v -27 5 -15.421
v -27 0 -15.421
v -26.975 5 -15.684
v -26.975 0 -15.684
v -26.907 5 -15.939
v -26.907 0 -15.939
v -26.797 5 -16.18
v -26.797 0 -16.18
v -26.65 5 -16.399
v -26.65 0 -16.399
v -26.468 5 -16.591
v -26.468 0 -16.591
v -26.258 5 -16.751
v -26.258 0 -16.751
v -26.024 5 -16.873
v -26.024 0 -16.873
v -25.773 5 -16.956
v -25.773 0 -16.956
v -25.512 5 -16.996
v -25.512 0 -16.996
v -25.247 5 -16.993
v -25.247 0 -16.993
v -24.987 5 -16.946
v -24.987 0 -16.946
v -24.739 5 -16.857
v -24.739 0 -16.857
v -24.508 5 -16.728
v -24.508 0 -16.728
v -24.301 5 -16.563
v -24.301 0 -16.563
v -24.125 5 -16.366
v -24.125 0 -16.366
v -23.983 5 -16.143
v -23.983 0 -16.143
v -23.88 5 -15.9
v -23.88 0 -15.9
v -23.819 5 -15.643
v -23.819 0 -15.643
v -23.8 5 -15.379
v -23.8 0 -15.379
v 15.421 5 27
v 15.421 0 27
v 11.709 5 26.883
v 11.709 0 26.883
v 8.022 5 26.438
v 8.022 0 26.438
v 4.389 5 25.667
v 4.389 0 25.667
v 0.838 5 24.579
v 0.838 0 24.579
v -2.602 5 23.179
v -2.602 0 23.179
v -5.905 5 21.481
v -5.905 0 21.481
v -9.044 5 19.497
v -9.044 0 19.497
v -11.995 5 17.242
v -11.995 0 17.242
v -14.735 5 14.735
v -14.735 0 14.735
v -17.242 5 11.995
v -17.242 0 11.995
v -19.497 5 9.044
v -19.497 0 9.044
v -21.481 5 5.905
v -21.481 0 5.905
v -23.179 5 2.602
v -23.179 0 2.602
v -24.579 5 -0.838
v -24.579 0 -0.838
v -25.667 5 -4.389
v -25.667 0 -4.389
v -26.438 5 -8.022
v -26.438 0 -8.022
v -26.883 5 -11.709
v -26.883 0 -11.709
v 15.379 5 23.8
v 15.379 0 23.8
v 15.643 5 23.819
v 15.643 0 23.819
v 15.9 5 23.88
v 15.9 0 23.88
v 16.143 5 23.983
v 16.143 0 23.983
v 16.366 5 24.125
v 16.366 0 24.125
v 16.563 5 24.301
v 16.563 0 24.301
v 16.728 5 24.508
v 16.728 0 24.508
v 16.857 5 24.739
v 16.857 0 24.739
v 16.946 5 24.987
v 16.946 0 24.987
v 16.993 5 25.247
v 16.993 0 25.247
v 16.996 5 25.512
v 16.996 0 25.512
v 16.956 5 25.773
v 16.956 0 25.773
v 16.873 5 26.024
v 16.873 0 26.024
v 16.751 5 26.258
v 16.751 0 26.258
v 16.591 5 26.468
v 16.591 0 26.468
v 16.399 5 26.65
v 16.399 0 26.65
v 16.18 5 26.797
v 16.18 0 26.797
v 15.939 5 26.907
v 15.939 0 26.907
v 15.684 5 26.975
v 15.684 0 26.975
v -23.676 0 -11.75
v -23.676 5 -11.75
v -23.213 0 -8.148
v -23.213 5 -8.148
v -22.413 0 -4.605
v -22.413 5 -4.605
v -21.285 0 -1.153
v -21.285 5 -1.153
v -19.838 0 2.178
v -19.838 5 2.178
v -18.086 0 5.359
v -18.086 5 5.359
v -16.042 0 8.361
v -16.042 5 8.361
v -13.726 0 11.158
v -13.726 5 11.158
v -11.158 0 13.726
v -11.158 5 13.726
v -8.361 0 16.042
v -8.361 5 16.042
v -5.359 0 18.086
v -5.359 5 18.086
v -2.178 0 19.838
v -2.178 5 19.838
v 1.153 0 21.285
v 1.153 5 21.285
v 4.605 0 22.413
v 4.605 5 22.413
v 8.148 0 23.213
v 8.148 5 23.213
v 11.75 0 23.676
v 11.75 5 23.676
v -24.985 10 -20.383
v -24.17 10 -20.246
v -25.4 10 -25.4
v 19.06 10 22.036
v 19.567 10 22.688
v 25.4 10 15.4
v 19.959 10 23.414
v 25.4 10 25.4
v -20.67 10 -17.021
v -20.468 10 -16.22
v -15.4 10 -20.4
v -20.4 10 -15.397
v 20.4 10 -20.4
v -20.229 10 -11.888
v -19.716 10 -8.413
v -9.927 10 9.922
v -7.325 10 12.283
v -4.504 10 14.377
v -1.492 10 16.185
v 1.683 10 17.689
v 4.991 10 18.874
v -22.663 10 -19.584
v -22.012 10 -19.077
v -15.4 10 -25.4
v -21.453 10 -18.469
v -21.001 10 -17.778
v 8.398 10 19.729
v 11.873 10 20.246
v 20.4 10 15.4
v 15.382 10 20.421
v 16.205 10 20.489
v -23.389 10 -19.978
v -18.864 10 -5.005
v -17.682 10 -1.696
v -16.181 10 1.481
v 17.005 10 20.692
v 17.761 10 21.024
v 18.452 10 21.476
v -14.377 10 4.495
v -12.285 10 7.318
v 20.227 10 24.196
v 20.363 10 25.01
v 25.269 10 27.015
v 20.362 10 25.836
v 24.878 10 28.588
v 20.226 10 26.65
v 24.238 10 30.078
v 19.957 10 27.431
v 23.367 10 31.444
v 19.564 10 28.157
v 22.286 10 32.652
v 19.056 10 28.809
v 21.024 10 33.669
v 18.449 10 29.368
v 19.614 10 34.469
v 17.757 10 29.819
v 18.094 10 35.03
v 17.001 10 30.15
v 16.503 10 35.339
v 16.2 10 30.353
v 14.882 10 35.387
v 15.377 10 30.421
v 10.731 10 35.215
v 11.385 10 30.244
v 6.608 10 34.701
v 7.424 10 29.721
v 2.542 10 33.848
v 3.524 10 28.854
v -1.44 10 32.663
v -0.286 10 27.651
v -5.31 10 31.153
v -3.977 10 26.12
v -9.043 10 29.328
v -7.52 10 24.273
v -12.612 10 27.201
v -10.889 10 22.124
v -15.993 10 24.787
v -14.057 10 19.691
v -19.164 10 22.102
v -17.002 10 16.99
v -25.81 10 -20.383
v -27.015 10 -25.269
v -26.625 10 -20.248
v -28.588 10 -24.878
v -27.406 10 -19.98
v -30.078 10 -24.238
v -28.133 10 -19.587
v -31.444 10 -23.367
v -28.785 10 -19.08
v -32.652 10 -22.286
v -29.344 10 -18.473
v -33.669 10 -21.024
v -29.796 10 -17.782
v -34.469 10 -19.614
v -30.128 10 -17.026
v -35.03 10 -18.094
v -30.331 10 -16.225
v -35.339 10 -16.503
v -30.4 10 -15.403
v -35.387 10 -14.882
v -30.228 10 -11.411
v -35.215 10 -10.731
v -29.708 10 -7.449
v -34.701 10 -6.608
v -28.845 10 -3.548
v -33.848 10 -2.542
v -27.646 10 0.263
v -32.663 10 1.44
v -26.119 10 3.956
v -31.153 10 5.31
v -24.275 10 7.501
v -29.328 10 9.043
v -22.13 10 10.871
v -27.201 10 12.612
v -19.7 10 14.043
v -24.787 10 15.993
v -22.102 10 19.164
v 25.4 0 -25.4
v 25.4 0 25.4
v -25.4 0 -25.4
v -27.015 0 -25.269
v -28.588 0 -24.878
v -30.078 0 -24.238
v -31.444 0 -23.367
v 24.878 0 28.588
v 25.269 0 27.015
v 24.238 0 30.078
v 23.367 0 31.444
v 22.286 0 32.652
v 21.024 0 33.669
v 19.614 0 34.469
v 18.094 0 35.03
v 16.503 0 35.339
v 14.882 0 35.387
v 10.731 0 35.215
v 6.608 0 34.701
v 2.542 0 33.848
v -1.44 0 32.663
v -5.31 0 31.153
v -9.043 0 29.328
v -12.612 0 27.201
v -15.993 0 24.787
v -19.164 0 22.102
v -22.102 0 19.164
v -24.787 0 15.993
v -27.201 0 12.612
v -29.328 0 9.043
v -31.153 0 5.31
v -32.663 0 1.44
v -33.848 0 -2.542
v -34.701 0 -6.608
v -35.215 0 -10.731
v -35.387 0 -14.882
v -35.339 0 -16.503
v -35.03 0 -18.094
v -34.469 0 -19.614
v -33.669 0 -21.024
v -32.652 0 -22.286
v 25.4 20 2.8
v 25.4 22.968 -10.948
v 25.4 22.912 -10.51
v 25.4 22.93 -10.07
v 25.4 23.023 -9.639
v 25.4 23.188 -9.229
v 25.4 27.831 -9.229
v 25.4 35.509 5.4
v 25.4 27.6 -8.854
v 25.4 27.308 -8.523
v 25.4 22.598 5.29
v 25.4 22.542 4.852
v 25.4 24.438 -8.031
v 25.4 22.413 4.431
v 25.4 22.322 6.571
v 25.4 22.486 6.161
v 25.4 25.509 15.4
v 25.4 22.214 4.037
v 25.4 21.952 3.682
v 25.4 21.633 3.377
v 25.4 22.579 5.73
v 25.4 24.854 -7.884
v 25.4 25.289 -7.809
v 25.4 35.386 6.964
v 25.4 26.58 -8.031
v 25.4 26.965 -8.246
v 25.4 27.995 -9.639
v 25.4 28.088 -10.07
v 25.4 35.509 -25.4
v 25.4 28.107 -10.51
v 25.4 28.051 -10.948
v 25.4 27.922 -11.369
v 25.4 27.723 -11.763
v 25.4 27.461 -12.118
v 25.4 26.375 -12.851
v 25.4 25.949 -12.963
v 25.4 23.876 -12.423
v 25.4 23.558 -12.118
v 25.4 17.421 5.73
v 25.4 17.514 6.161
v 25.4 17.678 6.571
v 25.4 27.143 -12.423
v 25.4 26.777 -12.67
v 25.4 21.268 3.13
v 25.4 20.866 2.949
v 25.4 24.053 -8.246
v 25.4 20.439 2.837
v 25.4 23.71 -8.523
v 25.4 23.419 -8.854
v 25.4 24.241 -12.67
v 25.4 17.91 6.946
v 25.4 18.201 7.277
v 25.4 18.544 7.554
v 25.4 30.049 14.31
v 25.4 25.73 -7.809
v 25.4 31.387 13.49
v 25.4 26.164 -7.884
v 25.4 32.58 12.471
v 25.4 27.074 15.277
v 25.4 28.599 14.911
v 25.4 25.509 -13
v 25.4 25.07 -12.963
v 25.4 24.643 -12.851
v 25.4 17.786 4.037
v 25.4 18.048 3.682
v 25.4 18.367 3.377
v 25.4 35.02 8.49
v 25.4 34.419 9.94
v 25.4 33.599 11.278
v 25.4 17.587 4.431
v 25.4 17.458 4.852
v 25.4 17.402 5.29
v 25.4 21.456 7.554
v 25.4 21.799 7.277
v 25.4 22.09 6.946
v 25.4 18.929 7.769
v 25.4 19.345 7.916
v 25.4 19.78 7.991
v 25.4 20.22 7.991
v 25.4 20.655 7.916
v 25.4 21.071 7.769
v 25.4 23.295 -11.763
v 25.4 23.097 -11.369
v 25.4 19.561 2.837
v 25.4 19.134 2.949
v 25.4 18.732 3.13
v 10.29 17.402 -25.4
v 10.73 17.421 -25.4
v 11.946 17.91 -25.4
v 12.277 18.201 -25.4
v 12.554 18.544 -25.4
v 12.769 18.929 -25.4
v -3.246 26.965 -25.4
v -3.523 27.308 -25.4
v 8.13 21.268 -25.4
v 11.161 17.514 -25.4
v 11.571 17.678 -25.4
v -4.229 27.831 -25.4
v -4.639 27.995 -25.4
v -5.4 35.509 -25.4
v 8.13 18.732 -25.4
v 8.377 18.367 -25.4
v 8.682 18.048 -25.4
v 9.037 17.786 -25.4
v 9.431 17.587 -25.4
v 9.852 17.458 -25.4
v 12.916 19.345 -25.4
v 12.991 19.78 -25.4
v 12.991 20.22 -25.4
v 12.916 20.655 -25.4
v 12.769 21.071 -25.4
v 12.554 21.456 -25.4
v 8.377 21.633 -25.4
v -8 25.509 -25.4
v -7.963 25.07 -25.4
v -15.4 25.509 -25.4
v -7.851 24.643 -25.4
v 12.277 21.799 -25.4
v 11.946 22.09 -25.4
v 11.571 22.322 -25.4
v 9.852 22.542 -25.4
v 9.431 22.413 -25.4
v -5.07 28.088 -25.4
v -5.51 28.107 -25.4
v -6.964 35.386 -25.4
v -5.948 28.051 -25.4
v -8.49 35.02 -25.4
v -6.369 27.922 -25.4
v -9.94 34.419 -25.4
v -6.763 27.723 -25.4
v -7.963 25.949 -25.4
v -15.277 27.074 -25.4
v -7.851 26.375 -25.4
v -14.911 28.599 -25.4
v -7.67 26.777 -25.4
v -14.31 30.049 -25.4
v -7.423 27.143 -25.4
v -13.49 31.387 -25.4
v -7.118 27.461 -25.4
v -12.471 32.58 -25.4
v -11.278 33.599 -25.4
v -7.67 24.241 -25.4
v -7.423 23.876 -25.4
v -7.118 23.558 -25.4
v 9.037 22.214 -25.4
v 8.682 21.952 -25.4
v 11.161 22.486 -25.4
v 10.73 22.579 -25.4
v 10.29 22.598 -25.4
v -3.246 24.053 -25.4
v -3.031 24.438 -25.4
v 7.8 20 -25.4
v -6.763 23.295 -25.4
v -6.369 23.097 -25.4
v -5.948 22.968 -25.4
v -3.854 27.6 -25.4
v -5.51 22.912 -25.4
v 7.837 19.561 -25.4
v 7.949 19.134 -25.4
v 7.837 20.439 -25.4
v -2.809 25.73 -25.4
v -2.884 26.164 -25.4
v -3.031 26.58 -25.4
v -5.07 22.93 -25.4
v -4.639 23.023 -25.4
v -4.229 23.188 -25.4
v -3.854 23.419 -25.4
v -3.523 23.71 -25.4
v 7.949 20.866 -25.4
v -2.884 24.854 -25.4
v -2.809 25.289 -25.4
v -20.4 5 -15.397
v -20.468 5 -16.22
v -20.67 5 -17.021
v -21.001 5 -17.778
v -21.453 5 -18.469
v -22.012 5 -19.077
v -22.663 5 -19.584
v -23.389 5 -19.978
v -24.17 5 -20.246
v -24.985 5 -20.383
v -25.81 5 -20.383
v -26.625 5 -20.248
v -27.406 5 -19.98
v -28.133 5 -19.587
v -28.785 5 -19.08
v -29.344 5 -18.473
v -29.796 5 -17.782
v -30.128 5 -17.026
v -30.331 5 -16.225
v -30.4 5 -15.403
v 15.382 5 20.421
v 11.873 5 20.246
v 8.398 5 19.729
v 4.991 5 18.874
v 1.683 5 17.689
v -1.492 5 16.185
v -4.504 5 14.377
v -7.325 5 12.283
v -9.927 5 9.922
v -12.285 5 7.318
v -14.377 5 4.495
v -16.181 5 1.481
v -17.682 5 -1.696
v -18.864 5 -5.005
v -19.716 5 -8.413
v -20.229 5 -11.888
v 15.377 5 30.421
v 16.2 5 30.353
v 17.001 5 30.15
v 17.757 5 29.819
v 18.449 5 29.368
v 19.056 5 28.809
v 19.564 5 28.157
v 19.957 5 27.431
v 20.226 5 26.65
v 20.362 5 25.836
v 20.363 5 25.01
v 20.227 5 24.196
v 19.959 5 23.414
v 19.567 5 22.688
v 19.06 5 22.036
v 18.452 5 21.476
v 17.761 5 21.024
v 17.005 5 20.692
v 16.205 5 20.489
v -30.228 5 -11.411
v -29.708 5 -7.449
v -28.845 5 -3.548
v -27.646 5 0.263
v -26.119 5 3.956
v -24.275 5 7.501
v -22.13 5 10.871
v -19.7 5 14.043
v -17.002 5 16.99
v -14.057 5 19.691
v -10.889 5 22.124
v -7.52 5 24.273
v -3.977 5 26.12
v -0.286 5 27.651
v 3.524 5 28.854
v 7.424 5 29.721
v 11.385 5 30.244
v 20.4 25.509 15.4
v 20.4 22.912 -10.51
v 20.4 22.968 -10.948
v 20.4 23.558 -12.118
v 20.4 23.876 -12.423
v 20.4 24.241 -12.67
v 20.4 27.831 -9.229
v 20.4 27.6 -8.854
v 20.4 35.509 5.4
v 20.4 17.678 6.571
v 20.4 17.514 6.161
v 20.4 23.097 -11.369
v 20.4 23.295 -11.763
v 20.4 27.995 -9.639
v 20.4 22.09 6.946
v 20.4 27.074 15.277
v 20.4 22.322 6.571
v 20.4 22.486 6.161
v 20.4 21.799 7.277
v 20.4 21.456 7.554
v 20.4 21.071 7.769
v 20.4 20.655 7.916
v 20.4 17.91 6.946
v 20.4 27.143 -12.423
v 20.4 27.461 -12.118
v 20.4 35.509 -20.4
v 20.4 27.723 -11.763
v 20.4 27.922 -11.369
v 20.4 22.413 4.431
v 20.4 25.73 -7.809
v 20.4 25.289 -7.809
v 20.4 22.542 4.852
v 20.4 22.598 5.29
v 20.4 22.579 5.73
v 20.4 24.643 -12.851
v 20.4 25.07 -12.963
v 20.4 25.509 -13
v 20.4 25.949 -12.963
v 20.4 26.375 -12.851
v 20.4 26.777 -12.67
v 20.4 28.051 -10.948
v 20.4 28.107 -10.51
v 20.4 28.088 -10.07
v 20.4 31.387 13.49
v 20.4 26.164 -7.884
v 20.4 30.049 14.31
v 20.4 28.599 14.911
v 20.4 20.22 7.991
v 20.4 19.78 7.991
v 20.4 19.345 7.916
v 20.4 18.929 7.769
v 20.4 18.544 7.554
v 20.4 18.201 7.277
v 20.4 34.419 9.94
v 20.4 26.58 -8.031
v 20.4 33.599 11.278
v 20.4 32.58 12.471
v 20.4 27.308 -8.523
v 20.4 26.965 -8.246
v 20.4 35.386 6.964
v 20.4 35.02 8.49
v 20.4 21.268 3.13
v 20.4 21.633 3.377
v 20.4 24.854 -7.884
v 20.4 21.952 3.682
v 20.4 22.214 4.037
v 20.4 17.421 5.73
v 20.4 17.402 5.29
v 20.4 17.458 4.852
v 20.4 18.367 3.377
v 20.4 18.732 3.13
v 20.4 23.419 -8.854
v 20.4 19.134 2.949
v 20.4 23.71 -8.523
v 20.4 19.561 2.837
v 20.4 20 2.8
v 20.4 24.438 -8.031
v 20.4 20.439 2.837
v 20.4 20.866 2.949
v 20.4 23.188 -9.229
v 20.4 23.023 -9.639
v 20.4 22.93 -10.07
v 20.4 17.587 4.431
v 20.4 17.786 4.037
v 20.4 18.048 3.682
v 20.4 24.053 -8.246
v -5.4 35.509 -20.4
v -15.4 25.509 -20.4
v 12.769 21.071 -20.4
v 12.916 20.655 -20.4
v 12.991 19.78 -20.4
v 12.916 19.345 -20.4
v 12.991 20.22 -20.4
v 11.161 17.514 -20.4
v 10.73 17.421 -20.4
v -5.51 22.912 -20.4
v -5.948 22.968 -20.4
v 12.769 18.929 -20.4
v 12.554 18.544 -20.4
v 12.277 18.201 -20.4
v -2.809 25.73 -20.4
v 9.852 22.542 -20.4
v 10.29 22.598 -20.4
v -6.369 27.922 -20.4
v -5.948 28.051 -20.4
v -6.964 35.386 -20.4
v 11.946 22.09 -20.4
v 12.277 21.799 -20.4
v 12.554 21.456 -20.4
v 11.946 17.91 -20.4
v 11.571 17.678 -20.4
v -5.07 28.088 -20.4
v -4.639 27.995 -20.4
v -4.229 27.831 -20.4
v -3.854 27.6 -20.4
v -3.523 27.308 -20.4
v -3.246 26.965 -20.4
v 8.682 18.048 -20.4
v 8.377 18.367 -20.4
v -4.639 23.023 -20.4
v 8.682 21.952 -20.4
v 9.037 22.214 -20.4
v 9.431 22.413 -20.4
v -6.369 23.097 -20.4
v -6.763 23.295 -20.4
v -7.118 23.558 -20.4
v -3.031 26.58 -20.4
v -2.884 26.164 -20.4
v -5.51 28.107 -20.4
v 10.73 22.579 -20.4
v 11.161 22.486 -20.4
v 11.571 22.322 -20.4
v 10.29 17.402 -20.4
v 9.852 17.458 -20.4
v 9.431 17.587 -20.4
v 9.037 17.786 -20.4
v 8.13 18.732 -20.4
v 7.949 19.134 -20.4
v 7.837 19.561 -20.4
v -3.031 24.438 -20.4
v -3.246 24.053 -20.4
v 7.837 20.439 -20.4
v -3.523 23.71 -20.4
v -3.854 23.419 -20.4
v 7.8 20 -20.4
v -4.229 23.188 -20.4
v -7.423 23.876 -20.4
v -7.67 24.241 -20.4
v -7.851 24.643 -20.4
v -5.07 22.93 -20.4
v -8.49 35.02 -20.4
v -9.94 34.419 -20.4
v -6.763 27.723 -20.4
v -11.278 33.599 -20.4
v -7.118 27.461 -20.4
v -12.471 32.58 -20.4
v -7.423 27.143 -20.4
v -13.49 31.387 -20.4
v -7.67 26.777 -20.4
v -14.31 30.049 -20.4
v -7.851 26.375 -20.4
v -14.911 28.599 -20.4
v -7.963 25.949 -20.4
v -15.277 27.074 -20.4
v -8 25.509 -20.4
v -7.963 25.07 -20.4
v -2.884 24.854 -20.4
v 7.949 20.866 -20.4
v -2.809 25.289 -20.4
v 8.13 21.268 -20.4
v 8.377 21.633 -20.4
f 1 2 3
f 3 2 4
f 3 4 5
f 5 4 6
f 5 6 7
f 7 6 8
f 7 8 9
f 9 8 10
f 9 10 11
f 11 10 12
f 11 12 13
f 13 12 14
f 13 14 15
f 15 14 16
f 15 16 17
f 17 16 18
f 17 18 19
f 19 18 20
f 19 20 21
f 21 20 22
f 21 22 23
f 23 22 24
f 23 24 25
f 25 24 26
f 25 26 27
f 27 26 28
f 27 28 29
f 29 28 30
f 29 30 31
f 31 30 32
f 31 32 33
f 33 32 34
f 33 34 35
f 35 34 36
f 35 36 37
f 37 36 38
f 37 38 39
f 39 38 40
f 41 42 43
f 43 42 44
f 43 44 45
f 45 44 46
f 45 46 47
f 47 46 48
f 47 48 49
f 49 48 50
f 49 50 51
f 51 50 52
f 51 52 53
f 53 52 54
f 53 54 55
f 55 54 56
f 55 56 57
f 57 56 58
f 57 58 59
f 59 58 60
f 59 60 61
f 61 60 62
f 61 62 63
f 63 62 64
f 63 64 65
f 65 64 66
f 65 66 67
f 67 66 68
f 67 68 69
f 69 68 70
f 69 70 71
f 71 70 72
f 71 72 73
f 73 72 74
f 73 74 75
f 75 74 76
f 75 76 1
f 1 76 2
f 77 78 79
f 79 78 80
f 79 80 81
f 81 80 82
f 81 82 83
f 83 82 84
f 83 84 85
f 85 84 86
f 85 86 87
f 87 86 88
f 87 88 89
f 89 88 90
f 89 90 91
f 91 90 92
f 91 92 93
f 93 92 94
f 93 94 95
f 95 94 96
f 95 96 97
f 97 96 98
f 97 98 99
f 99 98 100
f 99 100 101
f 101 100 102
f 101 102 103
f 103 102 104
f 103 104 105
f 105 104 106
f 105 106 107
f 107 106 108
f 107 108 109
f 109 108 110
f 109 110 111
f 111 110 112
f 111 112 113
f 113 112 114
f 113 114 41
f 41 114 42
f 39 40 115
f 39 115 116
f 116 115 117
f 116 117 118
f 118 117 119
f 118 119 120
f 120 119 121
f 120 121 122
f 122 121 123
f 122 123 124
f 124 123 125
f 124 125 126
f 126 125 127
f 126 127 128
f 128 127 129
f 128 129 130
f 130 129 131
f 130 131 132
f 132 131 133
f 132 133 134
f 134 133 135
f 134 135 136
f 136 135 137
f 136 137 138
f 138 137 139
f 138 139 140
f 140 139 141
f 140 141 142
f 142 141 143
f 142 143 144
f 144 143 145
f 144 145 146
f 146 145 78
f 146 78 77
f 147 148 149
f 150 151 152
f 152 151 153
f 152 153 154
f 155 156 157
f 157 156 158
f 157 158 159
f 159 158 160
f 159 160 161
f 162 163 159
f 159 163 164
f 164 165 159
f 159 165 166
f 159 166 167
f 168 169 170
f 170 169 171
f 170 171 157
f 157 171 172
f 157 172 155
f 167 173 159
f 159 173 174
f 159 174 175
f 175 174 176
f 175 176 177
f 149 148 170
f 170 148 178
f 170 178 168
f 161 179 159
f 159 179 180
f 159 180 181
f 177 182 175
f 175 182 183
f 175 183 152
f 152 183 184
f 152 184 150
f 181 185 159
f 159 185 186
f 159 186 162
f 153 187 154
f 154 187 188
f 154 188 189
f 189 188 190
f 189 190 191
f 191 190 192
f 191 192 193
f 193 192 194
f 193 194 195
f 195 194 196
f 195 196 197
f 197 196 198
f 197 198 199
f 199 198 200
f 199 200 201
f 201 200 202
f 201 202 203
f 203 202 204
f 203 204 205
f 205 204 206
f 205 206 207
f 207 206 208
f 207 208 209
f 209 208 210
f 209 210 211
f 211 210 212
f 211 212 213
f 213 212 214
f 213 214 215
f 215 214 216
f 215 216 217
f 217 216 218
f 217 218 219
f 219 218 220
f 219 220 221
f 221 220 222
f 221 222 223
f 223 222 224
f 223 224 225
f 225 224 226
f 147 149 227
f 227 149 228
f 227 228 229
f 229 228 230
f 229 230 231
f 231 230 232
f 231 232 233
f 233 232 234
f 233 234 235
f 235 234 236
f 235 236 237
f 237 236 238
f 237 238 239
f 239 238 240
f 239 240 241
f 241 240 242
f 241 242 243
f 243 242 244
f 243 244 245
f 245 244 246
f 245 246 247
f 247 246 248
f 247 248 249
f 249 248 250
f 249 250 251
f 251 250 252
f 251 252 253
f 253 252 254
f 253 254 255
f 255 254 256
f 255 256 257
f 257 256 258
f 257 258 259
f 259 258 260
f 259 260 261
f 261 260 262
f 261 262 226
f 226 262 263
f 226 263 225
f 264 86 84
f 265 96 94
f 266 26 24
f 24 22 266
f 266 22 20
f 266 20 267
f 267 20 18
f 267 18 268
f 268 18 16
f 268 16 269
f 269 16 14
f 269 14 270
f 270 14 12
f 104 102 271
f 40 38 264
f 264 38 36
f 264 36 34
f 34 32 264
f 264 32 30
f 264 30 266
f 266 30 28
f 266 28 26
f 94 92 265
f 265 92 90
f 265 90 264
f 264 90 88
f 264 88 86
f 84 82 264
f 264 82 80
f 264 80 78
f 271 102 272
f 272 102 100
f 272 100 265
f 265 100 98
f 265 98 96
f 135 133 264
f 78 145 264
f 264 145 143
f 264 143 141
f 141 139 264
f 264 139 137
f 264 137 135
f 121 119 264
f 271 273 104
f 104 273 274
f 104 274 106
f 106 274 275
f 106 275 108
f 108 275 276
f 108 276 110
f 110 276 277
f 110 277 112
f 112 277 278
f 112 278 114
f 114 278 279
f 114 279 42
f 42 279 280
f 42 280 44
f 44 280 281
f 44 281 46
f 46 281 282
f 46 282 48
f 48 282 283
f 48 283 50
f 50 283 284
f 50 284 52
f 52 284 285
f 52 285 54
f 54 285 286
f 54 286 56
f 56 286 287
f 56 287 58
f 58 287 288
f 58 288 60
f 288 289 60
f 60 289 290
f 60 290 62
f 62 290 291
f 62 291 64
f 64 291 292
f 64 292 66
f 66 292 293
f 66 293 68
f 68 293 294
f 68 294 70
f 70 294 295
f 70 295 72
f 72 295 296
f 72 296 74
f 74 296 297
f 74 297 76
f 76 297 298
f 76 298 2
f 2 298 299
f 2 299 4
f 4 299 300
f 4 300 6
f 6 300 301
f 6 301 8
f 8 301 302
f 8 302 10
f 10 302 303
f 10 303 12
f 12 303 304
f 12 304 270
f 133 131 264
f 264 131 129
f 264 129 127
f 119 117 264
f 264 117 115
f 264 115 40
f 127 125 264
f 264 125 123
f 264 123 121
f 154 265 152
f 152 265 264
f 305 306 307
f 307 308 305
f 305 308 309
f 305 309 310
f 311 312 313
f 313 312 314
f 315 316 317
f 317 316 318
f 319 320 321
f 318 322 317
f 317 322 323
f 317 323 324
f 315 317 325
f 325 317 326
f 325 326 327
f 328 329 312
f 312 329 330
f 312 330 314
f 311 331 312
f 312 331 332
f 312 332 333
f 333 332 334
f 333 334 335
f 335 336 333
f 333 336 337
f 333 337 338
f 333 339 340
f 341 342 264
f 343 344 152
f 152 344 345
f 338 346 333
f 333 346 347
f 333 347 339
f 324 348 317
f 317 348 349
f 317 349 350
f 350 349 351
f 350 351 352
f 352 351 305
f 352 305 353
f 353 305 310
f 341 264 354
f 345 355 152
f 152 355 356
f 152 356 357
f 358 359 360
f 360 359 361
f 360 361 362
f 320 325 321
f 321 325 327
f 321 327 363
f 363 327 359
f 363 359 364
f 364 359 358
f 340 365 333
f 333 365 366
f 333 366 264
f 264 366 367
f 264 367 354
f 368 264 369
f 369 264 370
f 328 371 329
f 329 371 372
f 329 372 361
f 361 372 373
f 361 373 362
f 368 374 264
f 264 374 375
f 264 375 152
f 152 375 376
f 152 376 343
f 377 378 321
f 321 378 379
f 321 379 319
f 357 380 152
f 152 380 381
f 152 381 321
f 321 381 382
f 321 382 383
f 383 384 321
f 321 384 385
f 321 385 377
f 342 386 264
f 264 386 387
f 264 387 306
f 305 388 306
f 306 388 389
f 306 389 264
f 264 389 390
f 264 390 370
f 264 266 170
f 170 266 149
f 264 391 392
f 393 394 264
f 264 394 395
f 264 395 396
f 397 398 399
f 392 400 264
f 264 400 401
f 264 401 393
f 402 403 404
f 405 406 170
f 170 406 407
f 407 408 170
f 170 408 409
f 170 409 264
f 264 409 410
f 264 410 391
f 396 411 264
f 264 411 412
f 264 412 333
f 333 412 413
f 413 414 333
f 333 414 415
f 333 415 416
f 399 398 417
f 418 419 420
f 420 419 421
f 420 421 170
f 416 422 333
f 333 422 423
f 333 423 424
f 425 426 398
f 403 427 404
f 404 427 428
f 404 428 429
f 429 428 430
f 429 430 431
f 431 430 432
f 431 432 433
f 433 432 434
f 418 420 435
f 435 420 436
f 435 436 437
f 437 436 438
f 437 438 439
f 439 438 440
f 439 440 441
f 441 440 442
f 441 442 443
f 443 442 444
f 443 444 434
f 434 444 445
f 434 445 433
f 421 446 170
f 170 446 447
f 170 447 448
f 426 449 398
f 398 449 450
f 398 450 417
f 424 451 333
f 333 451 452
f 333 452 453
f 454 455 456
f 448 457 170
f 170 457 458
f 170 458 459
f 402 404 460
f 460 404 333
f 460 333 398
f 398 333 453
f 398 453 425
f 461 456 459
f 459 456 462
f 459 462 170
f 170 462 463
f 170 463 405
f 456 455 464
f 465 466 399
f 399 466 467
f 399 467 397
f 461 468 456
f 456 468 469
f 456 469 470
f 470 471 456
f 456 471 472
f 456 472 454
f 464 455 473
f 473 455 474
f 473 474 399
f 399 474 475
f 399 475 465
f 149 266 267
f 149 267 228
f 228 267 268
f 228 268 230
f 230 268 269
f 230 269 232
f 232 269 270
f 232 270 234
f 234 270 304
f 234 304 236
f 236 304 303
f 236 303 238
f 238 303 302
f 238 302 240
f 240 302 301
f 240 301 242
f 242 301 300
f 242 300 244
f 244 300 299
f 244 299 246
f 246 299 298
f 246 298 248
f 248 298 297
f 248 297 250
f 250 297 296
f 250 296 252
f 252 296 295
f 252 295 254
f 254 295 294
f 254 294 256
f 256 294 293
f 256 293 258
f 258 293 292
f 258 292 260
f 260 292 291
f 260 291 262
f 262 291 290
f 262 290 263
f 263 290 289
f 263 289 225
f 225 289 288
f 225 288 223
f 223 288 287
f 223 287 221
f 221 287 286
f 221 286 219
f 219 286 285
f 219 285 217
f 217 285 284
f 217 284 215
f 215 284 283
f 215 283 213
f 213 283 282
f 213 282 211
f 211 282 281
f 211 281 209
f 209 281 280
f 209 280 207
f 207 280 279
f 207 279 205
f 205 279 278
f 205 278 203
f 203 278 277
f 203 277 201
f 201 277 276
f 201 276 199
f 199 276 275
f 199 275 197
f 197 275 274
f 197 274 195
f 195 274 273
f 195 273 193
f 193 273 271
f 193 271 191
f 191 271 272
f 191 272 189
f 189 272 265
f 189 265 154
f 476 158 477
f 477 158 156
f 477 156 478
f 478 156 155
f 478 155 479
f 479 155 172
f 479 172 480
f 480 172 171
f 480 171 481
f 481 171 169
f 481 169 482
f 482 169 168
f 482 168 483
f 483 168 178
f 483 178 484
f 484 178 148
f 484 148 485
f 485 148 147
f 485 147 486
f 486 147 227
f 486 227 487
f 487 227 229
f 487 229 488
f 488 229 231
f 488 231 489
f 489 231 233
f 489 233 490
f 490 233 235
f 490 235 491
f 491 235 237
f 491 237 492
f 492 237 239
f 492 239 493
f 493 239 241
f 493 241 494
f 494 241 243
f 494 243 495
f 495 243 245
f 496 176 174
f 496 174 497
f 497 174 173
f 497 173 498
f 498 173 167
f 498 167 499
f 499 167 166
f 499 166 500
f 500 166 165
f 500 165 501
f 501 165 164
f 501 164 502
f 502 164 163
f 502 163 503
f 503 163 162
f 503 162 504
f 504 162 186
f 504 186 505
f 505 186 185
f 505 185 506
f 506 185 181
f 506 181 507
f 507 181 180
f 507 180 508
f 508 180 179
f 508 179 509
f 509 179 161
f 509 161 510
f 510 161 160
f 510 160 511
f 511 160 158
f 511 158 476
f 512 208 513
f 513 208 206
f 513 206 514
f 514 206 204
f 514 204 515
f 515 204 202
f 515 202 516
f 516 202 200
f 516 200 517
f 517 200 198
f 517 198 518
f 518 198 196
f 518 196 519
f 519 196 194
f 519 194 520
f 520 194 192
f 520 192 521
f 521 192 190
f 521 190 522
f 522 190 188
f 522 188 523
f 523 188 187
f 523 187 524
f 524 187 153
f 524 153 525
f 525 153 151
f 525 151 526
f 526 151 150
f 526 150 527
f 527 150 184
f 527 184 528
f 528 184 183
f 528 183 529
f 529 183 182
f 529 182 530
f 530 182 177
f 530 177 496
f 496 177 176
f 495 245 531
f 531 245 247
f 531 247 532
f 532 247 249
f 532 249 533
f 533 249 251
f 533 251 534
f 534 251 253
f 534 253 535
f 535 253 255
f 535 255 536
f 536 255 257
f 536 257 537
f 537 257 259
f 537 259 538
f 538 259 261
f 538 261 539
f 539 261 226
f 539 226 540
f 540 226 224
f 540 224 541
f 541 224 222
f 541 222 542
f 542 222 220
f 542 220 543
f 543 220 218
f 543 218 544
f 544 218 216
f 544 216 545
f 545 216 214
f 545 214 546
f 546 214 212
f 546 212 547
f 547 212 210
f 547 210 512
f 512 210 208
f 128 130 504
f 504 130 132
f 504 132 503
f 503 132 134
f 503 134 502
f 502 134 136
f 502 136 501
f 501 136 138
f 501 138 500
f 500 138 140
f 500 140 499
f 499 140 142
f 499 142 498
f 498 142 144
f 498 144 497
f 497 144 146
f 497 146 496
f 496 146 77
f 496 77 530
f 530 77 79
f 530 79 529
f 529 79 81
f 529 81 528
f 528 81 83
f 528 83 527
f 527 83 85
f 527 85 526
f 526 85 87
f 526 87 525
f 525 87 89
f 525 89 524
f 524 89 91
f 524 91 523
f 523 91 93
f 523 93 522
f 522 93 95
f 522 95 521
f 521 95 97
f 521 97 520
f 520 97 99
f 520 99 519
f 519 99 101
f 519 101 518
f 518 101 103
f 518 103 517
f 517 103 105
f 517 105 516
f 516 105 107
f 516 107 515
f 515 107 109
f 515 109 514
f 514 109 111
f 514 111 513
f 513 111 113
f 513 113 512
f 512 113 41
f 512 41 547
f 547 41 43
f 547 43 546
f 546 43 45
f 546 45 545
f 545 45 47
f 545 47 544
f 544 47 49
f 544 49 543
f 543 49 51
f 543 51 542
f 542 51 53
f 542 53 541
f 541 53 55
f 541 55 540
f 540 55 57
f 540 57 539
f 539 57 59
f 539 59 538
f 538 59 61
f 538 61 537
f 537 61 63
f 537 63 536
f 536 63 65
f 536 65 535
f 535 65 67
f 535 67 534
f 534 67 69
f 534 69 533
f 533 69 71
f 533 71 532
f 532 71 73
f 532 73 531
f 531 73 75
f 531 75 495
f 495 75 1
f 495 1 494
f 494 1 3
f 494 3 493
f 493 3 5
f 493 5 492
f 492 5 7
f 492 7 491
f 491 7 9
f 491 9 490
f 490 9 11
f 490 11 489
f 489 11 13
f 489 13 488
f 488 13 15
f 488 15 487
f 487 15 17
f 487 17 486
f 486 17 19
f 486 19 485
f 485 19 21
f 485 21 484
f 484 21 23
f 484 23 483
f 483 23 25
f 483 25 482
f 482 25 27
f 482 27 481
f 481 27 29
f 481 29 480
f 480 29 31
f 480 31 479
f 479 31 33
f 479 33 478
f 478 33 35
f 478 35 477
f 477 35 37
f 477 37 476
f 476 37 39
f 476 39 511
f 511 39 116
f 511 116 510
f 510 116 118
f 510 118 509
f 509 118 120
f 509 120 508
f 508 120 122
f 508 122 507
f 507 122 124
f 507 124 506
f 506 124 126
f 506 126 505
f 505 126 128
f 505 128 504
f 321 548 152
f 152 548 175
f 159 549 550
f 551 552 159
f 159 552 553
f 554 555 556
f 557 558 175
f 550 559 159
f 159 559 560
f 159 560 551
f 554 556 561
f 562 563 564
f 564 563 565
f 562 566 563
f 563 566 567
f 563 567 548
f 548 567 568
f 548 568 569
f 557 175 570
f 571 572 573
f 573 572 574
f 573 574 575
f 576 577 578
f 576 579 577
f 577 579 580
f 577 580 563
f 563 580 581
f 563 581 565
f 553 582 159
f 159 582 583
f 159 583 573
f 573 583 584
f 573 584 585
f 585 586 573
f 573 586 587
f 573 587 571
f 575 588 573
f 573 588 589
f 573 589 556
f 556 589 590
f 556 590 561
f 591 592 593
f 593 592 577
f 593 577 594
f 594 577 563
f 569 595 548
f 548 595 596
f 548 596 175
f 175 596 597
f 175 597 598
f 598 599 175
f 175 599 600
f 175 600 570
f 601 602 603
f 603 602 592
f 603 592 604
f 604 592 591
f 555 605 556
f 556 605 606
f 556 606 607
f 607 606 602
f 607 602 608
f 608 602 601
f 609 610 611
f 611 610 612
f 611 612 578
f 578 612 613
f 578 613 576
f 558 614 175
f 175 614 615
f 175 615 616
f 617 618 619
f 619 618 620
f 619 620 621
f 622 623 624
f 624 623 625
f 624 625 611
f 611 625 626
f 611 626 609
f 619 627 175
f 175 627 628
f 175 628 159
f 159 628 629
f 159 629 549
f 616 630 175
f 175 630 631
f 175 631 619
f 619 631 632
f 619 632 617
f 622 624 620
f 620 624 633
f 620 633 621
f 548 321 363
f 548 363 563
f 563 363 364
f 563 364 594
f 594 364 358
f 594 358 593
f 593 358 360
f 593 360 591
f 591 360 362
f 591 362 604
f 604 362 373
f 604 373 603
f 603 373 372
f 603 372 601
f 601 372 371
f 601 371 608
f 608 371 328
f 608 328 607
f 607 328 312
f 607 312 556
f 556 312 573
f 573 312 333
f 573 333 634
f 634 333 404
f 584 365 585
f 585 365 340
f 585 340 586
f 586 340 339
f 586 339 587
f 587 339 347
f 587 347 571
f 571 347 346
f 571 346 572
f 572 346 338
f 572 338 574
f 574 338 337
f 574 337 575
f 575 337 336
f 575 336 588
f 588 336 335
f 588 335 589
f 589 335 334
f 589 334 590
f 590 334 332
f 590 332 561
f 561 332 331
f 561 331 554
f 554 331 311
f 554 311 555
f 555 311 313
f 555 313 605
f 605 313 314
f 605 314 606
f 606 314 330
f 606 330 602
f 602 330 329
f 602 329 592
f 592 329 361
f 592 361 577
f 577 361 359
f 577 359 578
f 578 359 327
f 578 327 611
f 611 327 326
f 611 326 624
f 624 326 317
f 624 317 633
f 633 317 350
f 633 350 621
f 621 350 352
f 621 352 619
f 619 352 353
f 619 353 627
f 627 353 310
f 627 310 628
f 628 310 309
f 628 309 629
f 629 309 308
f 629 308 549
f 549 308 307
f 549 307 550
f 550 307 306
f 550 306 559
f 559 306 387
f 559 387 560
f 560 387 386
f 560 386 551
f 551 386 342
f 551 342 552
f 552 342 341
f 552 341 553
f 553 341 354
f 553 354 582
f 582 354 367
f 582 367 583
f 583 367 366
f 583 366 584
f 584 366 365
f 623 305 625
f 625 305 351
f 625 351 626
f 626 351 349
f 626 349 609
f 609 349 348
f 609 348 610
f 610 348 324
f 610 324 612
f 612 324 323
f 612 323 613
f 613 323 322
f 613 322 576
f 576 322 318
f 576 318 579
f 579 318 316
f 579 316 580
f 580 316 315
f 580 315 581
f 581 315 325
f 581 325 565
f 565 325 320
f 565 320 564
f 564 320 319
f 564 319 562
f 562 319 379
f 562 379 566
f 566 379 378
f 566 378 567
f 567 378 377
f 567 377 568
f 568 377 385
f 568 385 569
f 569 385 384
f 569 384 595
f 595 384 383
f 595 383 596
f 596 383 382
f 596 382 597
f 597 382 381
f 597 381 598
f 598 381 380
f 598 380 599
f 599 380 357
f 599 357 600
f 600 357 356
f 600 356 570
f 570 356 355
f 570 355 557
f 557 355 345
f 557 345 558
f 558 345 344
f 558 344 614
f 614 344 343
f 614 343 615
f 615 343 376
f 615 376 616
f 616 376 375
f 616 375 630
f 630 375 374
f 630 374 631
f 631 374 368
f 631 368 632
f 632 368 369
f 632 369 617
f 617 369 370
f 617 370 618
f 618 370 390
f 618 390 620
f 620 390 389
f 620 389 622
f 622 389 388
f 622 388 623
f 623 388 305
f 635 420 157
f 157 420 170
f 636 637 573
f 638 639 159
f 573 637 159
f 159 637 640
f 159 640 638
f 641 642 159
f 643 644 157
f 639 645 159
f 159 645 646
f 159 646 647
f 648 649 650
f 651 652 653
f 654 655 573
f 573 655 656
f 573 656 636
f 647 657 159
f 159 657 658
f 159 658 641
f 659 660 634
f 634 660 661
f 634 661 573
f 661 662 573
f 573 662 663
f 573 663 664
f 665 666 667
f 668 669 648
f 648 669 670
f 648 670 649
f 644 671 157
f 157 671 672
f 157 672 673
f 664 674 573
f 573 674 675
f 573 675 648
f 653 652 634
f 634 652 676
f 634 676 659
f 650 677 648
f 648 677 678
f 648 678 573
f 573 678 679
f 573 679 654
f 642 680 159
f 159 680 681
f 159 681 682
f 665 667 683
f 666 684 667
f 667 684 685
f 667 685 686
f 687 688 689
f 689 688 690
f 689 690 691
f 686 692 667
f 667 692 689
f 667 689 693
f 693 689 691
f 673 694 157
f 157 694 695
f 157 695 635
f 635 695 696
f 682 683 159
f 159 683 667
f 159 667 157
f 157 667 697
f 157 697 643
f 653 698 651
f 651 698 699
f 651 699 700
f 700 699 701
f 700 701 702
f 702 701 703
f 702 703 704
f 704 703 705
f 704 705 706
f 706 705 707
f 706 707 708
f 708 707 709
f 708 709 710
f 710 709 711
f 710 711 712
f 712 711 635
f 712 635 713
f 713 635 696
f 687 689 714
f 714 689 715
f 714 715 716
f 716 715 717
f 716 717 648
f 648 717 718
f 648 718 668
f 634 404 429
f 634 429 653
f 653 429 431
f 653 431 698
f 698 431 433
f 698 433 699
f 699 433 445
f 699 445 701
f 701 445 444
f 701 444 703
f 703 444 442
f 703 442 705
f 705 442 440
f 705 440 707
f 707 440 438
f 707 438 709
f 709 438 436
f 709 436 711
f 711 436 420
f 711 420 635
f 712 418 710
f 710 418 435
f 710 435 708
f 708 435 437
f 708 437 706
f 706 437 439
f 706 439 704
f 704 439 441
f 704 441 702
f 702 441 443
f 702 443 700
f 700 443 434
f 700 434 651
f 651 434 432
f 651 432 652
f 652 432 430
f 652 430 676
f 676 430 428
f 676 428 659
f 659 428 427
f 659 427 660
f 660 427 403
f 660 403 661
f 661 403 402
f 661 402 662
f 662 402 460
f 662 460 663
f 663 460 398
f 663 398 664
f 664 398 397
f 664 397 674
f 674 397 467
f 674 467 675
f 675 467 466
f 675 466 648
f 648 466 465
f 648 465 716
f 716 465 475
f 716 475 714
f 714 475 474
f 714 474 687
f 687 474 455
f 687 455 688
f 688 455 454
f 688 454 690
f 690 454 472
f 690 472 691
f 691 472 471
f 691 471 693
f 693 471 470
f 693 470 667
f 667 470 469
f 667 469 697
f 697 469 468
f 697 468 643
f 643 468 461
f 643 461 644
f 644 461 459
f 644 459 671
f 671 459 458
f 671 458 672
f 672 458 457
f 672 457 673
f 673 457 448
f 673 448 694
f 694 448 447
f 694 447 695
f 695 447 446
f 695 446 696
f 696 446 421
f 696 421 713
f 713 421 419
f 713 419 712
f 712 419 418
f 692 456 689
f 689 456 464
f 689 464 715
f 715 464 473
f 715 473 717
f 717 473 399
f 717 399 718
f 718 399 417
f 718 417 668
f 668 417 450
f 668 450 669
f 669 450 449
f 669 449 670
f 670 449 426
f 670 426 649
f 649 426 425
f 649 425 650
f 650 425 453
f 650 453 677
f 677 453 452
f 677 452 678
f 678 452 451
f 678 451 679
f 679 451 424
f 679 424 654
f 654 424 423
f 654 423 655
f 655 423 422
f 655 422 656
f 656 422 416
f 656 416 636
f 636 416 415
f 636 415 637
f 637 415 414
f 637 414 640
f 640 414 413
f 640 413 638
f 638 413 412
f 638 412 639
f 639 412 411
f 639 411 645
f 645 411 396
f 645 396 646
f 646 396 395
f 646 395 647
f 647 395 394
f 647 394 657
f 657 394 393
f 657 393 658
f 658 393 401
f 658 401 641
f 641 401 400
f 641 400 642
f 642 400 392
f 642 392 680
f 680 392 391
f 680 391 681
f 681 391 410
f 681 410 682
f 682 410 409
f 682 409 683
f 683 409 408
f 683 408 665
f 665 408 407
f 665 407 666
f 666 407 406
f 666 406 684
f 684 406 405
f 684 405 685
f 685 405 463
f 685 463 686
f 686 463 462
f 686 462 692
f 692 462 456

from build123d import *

# Parameters (mm, degrees)
BOSS_EXTRUDE1_DEPTH = 10
CUT_EXTRUDE1_DEPTH  = 5
SKETCH4_R           = 2.6
BOSS_EXTRUDE2_DEPTH = 5
SKETCH5_R           = 2.6
BOSS_EXTRUDE3_DEPTH = 5


with BuildPart() as part:
    # Sketch1 → Boss-Extrude1 (new body)
    with BuildSketch(Plane(origin=(0, 0, 0), x_dir=(1, 0, 0), z_dir=(0, 1, 0))):
        with BuildLine():
            Line((-25.4, 25.4), (25.4, 25.4))
            Line((25.4, 25.4), (25.4, -25.4))
            ThreePointArc((25.4, -25.4), (22.285670886, -32.651726446), (14.882492711, -35.386600333))
            ThreePointArc((14.882492711, -35.386600333), (-20.663123864, -20.663123864), (-35.386600333, 14.882492711))
            ThreePointArc((-35.386600333, 14.882492711), (-32.651726446, 22.285670886), (-25.4, 25.4))
        make_face()
        with BuildLine():
            ThreePointArc((-26.999867981, 15.420553429), (-14.735252362, -14.735252362), (15.420553429, -26.999867981))
            ThreePointArc((15.420553429, -26.999867981), (16.999867981, -25.379446571), (15.379446571, -23.800132019))
            ThreePointArc((15.379446571, -23.800132019), (-12.472510663, -12.472510663), (-23.800132019, 15.379446571))
            ThreePointArc((-23.800132019, 15.379446571), (-25.379446571, 16.999867981), (-26.999867981, 15.420553429))
        make_face(mode=Mode.SUBTRACT)
    extrude(amount=BOSS_EXTRUDE1_DEPTH)

    # Sketch3 → Cut-Extrude1 (cut)
    with BuildSketch(Plane(origin=(0, 10, 0), x_dir=(1, 0, 0), z_dir=(0, 1, 0))):
        with BuildLine():
            ThreePointArc((-30.399999366, 15.402518802), (-17.001804661, -16.989729027), (15.376927769, -30.420552794))
            ThreePointArc((15.376927769, -30.420552794), (20.379445937, -25.423072231), (15.381965374, -20.420554063))
            ThreePointArc((15.381965374, -20.420554063), (-9.927175622, -9.922224237), (-20.400000634, 15.397481198))
            ThreePointArc((-20.400000634, 15.397481198), (-25.397481198, 20.399999366), (-30.399999366, 15.402518802))
        make_face()
    extrude(amount=-CUT_EXTRUDE1_DEPTH, mode=Mode.SUBTRACT)

    # Sketch4 → Boss-Extrude2 (add)
    with BuildSketch(Plane(origin=(25.4, 0, 0), x_dir=(0, 0, -1), z_dir=(1, 0, 0))):
        with BuildLine():
            Line((-15.4, 25.50929881), (-15.4, 0))
            Line((-15.4, 0), (25.4, 0))
            Line((25.4, 0), (25.4, 35.50929881))
            Line((25.4, 35.50929881), (-5.4, 35.50929881))
            ThreePointArc((-5.4, 35.50929881), (-12.471067812, 32.580366621), (-15.4, 25.50929881))
        make_face()
        with Locations((10.4, 25.50929881)):
            Circle(SKETCH4_R, mode=Mode.SUBTRACT)
        with Locations((-5.4, 20)):
            Circle(SKETCH4_R, mode=Mode.SUBTRACT)
    extrude(amount=-BOSS_EXTRUDE2_DEPTH)

    # Sketch5 → Boss-Extrude3 (add)
    with BuildSketch(Plane(origin=(0, 0, -25.4), x_dir=(-1, 0, 0), z_dir=(0, 0, -1))):
        with BuildLine():
            Line((5.4, 35.50929881), (-25.4, 35.50929881))
            Line((-25.4, 35.50929881), (-25.4, 0))
            Line((-25.4, 0), (15.4, 0))
            Line((15.4, 0), (15.4, 25.50929881))
            ThreePointArc((15.4, 25.50929881), (12.471067812, 32.580366621), (5.4, 35.50929881))
        make_face()
        with Locations((5.4, 25.50929881)):
            Circle(SKETCH5_R, mode=Mode.SUBTRACT)
        with Locations((-10.4, 20)):
            Circle(SKETCH5_R, mode=Mode.SUBTRACT)
    extrude(amount=-BOSS_EXTRUDE3_DEPTH)


solid = part.part
